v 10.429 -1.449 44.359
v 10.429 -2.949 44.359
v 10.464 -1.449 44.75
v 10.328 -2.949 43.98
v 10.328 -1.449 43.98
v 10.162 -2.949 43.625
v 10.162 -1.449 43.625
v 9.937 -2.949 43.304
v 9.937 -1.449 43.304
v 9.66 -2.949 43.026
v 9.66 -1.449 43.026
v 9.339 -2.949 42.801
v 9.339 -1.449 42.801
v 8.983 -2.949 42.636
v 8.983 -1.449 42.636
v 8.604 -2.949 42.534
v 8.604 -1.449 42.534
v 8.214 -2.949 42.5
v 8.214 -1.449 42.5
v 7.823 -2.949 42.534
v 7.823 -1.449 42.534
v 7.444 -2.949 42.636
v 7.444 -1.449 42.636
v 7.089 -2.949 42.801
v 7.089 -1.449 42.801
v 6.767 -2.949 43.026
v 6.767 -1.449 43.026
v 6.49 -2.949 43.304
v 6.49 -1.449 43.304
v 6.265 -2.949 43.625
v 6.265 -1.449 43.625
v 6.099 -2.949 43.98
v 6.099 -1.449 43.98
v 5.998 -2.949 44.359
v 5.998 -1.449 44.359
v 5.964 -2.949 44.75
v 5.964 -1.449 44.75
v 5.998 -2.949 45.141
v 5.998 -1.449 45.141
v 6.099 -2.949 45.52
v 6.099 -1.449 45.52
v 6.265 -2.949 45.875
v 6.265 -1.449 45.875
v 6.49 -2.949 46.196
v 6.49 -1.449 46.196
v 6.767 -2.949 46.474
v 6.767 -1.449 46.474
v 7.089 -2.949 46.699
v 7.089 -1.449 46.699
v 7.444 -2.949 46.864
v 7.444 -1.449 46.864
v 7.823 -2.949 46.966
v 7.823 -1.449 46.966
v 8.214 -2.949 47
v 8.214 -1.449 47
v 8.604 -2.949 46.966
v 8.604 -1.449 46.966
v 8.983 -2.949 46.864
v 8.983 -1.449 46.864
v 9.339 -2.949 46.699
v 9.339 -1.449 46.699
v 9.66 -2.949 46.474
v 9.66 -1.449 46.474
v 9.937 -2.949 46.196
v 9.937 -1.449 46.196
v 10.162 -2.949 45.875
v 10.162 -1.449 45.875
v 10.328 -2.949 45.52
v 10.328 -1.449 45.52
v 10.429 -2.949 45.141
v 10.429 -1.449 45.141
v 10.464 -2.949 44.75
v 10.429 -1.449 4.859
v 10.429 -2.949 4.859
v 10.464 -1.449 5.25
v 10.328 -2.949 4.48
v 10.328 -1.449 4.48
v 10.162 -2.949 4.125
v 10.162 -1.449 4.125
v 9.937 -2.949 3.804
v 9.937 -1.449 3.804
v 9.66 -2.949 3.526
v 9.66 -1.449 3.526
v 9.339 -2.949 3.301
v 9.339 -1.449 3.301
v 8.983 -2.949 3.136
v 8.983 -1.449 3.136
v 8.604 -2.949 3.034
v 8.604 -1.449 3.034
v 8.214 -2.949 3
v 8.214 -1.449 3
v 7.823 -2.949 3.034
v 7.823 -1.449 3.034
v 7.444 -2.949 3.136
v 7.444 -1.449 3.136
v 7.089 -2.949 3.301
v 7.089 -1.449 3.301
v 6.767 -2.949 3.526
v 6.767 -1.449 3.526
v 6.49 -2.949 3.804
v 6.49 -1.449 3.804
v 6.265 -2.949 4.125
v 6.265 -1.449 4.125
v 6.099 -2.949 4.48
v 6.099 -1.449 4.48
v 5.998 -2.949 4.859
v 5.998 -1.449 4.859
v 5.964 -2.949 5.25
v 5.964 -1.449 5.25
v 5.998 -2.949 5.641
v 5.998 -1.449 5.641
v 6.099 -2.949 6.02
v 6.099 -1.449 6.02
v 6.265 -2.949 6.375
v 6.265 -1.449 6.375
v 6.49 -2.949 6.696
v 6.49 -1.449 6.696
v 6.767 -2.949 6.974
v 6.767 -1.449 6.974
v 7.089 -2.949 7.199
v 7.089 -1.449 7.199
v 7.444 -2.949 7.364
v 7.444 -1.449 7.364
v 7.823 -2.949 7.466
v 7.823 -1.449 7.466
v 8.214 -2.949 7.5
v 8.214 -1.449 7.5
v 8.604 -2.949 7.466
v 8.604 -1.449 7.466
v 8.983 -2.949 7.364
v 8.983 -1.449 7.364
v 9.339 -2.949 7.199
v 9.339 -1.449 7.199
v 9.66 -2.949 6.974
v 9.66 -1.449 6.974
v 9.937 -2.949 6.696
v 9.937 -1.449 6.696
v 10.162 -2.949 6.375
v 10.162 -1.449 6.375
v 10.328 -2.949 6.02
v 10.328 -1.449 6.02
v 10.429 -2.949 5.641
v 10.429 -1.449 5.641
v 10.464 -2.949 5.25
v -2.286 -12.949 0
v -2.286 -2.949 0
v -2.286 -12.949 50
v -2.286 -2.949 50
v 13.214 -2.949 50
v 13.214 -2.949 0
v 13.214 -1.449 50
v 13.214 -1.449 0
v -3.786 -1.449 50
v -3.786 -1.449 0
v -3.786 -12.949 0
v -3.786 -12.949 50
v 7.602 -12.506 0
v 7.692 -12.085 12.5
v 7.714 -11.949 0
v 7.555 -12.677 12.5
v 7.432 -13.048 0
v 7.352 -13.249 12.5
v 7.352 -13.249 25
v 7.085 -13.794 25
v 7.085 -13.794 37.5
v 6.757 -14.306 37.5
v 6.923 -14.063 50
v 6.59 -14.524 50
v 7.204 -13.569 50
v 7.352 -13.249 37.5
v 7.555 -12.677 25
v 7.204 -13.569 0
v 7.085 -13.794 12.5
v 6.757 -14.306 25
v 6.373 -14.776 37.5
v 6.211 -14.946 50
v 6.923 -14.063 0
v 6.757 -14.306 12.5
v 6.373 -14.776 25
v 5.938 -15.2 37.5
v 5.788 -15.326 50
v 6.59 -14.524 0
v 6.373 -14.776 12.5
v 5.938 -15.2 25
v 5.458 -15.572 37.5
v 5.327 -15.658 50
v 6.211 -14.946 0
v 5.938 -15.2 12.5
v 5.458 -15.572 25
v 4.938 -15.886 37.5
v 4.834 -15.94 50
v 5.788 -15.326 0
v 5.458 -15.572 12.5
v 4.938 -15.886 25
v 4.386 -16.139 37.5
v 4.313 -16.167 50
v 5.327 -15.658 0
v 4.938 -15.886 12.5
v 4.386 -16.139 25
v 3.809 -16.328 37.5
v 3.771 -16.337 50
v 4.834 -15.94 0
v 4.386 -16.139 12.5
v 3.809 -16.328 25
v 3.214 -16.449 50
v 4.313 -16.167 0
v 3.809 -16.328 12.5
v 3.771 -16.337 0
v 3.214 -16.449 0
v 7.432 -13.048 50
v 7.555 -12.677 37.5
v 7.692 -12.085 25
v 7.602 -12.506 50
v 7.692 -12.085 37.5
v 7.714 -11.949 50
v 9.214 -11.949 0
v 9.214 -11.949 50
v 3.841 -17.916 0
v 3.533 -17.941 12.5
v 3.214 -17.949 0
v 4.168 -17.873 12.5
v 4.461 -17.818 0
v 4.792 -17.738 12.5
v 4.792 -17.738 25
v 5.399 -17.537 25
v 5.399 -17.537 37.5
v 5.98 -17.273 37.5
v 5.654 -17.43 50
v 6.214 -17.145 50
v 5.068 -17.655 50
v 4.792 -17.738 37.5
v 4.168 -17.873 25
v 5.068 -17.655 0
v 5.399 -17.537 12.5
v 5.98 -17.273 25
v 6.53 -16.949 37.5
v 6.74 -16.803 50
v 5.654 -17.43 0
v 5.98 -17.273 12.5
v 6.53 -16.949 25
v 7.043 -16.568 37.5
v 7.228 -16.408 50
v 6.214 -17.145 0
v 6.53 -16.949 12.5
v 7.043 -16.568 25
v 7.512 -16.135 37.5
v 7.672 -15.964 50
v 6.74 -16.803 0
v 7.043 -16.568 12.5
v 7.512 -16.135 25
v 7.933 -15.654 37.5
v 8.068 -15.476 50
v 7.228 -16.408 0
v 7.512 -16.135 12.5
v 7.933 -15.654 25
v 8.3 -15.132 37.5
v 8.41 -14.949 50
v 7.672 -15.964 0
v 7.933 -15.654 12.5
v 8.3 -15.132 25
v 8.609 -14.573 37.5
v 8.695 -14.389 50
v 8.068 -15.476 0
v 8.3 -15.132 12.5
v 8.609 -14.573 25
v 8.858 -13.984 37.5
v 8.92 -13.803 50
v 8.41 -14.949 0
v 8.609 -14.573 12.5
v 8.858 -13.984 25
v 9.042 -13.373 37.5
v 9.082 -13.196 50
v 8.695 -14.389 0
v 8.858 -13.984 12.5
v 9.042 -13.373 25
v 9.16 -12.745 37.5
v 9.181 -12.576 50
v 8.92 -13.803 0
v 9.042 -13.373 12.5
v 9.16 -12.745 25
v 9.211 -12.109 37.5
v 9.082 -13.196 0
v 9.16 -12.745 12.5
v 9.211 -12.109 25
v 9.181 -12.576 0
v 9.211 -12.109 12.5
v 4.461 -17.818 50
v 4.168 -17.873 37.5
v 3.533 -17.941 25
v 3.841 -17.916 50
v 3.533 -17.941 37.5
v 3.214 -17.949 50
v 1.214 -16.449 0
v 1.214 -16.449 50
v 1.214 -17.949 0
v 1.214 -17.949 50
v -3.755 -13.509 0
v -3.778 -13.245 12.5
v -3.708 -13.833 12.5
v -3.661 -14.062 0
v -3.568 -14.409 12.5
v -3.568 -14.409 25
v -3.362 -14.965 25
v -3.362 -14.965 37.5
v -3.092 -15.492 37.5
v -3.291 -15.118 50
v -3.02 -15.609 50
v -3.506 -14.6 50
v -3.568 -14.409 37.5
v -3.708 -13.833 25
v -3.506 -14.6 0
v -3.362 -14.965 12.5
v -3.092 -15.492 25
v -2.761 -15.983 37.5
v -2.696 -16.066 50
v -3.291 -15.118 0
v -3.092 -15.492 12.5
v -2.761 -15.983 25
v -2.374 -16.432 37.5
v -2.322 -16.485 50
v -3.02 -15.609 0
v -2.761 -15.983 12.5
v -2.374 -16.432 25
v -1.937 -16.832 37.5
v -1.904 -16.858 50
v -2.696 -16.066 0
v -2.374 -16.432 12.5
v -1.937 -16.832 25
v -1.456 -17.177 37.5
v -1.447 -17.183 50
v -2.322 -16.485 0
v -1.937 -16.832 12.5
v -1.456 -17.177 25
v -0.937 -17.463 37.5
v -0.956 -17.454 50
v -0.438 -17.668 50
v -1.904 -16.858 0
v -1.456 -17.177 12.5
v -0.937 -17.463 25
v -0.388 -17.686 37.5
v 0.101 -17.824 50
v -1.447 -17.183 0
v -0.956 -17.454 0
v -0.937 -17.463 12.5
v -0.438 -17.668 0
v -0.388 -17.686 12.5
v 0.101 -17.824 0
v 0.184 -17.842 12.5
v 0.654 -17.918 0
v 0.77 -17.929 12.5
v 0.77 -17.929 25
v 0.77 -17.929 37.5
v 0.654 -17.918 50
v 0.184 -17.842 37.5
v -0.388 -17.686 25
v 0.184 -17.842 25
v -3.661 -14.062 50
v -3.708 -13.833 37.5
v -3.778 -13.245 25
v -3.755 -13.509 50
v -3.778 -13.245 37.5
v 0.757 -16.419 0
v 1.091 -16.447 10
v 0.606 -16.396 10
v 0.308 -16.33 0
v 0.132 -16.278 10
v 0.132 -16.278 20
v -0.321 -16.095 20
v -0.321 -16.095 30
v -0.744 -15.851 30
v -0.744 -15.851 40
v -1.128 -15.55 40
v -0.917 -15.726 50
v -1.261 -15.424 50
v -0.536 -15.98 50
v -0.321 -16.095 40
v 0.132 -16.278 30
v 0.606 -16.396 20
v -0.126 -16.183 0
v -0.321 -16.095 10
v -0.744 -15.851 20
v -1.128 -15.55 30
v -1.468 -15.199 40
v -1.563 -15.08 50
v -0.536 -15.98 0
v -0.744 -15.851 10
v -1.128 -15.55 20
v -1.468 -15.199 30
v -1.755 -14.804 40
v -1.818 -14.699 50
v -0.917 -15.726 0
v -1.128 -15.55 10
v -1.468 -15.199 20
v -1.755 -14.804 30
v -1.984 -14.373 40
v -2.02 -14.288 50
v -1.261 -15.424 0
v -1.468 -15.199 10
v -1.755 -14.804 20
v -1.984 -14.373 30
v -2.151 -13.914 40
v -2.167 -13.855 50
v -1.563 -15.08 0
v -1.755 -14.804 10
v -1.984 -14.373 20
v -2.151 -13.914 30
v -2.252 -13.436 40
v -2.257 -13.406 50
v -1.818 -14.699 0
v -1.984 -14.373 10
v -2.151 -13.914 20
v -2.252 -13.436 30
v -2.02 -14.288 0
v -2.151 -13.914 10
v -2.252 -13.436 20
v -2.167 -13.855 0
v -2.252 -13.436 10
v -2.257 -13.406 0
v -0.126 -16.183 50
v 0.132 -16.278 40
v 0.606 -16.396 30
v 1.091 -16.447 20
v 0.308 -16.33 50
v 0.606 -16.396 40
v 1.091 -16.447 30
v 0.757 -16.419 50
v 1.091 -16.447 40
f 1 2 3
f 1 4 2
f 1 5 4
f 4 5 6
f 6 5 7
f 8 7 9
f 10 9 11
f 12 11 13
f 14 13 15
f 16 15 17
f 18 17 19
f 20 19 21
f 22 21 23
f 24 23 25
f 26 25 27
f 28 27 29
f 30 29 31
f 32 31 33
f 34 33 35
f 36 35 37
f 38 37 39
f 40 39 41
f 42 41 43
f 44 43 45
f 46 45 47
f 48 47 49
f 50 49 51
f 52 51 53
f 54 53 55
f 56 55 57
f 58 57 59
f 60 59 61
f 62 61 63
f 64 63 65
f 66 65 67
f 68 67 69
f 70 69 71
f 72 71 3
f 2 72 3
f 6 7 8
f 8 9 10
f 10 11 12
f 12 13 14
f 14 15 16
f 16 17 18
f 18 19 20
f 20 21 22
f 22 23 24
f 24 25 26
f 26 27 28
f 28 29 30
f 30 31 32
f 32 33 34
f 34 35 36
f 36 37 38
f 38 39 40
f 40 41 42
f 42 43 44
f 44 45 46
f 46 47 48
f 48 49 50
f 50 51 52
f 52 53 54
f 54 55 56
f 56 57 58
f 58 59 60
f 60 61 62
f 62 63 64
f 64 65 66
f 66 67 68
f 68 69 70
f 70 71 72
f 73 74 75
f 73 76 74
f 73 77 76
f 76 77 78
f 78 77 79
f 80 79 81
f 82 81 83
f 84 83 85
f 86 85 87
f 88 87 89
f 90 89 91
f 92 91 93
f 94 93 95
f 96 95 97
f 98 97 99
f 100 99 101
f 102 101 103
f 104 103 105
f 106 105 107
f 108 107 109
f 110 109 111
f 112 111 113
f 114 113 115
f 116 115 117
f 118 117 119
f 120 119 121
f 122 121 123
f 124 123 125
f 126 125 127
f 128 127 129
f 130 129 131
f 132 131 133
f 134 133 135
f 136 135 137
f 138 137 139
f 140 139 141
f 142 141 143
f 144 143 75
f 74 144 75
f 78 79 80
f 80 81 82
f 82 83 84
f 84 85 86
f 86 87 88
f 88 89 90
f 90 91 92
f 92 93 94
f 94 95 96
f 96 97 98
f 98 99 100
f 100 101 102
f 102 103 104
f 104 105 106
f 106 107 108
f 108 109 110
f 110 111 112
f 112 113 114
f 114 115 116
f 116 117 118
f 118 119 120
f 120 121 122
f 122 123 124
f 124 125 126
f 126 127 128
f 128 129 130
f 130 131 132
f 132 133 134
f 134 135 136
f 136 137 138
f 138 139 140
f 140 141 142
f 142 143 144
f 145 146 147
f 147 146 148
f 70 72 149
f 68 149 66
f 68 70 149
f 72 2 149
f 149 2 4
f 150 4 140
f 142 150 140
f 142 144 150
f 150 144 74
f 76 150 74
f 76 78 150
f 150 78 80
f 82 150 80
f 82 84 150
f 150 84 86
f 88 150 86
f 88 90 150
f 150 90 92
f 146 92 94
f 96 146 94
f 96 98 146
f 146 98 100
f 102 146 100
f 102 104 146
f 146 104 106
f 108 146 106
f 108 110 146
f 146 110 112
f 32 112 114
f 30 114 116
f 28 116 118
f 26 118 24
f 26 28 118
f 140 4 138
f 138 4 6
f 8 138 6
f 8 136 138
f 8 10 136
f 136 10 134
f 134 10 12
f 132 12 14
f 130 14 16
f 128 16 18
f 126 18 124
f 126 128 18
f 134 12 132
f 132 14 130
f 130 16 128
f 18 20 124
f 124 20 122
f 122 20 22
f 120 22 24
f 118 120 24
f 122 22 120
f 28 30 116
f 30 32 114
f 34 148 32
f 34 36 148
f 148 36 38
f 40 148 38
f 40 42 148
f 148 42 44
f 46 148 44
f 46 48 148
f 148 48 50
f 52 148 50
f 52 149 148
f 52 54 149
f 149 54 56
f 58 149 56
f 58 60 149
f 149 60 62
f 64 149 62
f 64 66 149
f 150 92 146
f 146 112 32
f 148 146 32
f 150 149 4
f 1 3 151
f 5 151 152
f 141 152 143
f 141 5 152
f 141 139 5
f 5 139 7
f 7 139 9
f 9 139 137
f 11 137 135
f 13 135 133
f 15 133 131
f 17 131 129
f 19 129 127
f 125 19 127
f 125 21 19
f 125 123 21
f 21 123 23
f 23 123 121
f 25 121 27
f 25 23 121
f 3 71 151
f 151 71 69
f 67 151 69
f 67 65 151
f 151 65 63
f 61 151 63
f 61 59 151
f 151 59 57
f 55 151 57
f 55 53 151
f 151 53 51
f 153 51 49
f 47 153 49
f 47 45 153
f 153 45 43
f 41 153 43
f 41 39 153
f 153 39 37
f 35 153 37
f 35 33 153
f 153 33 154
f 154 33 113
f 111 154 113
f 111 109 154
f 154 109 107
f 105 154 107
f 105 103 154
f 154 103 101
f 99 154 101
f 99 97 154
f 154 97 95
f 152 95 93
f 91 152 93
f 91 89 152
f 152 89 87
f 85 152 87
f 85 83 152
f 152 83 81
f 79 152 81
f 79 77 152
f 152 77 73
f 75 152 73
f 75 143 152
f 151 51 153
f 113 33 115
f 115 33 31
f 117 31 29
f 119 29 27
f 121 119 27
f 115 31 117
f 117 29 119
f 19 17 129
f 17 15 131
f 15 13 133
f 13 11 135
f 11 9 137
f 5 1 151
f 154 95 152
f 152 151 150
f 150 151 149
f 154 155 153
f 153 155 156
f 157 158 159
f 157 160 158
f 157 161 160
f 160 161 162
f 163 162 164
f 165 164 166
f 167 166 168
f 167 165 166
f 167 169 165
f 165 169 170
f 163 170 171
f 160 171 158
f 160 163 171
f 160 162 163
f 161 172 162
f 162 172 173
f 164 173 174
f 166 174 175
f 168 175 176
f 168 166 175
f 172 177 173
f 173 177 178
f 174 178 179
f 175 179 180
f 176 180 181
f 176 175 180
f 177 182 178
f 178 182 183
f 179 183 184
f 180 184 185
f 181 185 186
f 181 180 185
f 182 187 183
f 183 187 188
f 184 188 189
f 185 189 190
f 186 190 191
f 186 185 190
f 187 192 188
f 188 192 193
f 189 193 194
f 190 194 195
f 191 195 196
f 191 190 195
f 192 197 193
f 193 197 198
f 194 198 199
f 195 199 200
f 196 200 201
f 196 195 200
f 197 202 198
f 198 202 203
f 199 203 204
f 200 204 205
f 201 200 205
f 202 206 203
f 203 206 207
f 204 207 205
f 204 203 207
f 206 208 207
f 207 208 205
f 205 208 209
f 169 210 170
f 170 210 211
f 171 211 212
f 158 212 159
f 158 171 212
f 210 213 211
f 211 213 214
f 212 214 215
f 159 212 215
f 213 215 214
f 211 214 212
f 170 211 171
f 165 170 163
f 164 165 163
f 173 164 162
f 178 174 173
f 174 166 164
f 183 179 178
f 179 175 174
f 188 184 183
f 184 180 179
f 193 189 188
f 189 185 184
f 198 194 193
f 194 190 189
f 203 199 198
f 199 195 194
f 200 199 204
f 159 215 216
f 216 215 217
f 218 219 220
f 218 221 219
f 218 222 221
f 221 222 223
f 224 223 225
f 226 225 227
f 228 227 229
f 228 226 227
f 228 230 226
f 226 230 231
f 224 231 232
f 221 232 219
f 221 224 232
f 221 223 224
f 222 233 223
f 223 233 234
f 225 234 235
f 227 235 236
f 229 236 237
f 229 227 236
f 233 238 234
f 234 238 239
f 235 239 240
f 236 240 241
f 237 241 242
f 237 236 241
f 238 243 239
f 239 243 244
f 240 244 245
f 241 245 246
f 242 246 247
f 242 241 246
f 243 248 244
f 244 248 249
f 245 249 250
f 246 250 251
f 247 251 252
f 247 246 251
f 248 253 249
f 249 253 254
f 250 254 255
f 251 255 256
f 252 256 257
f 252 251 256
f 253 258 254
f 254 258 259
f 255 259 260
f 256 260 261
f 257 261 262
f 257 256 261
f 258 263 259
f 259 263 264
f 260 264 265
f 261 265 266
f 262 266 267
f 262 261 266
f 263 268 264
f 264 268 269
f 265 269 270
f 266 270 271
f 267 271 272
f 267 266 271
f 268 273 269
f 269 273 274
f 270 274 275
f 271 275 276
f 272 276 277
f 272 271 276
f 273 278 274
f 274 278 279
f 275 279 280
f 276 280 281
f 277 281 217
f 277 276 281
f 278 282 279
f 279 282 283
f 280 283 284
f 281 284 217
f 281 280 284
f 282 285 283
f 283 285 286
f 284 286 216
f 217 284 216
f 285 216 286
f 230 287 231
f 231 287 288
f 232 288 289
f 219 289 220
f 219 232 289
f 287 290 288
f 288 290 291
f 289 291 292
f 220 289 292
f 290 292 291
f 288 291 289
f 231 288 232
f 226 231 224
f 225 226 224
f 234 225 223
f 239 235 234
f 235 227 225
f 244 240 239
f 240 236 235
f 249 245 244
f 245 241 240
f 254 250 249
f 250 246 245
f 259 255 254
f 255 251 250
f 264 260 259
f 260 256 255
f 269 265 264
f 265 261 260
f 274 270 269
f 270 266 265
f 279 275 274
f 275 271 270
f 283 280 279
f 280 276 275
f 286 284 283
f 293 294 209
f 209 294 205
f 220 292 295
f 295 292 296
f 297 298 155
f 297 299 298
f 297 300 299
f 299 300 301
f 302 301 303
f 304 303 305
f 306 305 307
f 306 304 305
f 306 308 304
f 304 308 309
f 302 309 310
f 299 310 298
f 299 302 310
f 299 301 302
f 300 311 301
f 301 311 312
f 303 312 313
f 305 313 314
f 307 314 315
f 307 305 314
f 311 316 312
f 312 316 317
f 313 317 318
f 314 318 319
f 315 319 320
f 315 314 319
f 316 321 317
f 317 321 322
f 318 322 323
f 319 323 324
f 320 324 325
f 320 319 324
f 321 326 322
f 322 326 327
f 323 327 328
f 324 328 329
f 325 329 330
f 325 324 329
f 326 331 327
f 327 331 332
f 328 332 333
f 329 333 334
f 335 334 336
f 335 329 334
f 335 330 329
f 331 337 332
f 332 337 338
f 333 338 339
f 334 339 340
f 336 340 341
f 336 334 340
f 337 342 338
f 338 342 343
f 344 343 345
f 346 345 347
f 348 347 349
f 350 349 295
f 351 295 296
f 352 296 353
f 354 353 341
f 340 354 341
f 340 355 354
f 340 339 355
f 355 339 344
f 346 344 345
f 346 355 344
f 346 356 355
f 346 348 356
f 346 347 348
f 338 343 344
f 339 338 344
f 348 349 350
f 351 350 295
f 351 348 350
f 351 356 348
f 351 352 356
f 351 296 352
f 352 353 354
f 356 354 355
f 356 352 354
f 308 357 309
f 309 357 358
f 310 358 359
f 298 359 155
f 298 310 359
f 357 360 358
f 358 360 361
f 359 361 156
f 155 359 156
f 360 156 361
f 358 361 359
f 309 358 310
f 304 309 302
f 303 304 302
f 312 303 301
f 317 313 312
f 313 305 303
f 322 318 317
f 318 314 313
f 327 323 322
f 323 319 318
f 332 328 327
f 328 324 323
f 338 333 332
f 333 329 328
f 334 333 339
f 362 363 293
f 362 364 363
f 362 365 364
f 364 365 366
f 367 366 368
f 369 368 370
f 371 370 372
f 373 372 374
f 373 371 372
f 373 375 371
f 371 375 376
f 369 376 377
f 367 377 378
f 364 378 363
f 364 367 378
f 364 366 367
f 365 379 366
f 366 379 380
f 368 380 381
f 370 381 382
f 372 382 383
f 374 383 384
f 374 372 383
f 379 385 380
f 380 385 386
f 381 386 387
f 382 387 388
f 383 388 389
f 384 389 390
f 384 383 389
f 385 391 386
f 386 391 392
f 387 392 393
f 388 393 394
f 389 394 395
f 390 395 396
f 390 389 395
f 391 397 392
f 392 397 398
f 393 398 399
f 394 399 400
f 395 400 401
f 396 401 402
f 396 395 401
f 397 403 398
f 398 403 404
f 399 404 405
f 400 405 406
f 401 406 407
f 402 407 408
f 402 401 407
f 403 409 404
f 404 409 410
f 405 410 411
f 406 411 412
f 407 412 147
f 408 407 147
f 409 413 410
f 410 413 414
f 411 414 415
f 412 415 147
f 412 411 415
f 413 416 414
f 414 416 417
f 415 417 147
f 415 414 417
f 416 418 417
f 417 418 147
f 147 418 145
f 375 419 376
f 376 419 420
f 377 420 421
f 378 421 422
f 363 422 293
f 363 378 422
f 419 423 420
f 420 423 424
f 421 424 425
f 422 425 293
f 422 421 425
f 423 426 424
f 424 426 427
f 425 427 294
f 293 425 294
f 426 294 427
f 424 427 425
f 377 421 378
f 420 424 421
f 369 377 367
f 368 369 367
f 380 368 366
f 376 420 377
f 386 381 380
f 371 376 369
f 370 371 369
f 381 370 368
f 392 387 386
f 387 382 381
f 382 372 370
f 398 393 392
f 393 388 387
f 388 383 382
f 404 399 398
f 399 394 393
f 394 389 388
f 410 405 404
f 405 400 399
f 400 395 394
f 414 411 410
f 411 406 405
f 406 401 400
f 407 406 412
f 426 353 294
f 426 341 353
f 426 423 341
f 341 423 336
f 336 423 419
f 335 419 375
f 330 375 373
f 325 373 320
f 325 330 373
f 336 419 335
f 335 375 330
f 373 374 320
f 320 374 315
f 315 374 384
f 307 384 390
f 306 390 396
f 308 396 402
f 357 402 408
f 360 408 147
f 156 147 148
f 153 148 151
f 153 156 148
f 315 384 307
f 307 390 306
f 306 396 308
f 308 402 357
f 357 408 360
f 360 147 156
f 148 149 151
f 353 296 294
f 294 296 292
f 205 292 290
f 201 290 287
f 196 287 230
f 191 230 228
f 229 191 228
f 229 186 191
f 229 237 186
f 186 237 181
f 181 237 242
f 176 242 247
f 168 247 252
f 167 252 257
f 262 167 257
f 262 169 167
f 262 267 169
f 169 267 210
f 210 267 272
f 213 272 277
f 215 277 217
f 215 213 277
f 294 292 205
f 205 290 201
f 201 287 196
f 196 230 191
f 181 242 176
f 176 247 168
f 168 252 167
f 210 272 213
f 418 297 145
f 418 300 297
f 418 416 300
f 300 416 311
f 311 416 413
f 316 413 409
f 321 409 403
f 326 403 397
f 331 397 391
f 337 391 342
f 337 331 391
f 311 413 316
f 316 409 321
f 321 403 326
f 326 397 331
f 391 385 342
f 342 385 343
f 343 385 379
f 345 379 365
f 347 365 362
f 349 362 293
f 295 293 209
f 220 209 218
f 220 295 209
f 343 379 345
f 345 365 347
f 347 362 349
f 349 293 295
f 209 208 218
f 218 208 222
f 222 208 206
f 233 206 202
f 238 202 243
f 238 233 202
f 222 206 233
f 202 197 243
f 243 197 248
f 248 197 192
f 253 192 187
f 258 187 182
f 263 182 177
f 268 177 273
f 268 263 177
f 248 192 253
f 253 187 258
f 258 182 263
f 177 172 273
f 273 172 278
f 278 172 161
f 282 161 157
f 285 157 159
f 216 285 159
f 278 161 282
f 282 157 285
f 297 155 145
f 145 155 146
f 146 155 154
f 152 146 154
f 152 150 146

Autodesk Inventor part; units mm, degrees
ref_plane "YZ Plane" through (0, 0, 0) normal (1, 0, 0) x (0, 1, 0)
ref_plane "XZ Plane" through (0, 0, 0) normal (0, 1, 0) x (-1, 0, 0)
ref_plane "XY Plane" through (0, 0, 0) normal (0, 0, 1) x (1, 0, 0)
sketch "Sketch1" plane through (0, 0, 0) normal (0, 0, 1) x (1, 0, 0)
  line L0 (-3.7865, -1.449) -> (13.2135, -1.449)
  line L1 (13.2135, -1.449) -> (13.2135, -2.949)
  line L2 (13.2135, -2.949) -> (-3.7865, -2.949)
  line L3 (-3.7865, -2.949) -> (-3.7865, -1.449)
  line L4 (-3.7865, -2.949) -> (-2.2865, -2.949)
  line L5 (-3.7865, -12.949) -> (-3.7865, -2.949)
  line L6 (3.2135, -16.449) -> (3.2135, -17.949)
  line L7 (3.2135, -17.949) -> (1.2135, -17.949)
  arc A0 (3.2135, -16.449) -> (7.7135, -11.949) centre (2.4495, -11.1849) ccw
  line L8 (7.7135, -11.949) -> (9.2135, -11.949)
  arc A1 (3.2135, -17.949) -> (9.2135, -11.949) centre (3.2135, -11.949) ccw
  arc A2 (-3.7865, -12.949) -> (1.2135, -17.949) centre (1.2135, -12.949) ccw
  arc A3 (-2.2865, -12.949) -> (1.2135, -16.449) centre (1.2135, -12.949) ccw
  line L9 (-3.7865, -12.949) -> (-2.2865, -12.949)
  line L10 (1.2135, -17.949) -> (1.2135, -16.449)
  line L11 (1.2135, -16.449) -> (3.2135, -16.449)
  line L12 (-2.2865, -2.949) -> (-2.2865, -12.949)
  point P0 (0, 0)
  dimension "d0" = 1.5
  dimension "d2" = 1.5
  dimension "d3" = 6
  dimension "d4" = 5
  dimension "d5" = 5
  dimension "d7" = 6
  dimension "d8" = 2
  dimension "d12" = 15.5
  dimension "d13" = 10
  dimension "d23" = 1.5
extrude "Extrusion1" add sketch "Sketch1" along normal blind 50
sketch "Sketch2" plane through (-2.2865, -2.949, 0) normal (0, -1, 0) x (1, 0, 0)
  line L0 (15.5, 50) -> (-1.5, 50) projected
  line L1 (10.5, 50) -> (10.5, 0) construction
  line L2 (15.5, 0) -> (-1.5, 0) projected
  line L3 (15.5, 0) -> (-1.5, 0) projected
  line L4 (-1.5, 0) -> (-1.5, 50) projected
  line L5 (15.5, 50) -> (-1.5, 50) projected
  line L6 (15.5, 0) -> (15.5, 50) projected
  circle A0 centre (10.5, 44.75) radius 2.25
  circle A1 centre (10.5, 5.25) radius 2.25
  point P0 (2.2865, 0)
  dimension "d14" = 5
  dimension "d15" = 4.5
  dimension "d16" = 4.5
  dimension "d18" = 3
  dimension "d19" = 3
extrude "Extrusion2" cut sketch "Sketch2" against normal blind 3 contours A0 | A1
properties part number "TopHook"
